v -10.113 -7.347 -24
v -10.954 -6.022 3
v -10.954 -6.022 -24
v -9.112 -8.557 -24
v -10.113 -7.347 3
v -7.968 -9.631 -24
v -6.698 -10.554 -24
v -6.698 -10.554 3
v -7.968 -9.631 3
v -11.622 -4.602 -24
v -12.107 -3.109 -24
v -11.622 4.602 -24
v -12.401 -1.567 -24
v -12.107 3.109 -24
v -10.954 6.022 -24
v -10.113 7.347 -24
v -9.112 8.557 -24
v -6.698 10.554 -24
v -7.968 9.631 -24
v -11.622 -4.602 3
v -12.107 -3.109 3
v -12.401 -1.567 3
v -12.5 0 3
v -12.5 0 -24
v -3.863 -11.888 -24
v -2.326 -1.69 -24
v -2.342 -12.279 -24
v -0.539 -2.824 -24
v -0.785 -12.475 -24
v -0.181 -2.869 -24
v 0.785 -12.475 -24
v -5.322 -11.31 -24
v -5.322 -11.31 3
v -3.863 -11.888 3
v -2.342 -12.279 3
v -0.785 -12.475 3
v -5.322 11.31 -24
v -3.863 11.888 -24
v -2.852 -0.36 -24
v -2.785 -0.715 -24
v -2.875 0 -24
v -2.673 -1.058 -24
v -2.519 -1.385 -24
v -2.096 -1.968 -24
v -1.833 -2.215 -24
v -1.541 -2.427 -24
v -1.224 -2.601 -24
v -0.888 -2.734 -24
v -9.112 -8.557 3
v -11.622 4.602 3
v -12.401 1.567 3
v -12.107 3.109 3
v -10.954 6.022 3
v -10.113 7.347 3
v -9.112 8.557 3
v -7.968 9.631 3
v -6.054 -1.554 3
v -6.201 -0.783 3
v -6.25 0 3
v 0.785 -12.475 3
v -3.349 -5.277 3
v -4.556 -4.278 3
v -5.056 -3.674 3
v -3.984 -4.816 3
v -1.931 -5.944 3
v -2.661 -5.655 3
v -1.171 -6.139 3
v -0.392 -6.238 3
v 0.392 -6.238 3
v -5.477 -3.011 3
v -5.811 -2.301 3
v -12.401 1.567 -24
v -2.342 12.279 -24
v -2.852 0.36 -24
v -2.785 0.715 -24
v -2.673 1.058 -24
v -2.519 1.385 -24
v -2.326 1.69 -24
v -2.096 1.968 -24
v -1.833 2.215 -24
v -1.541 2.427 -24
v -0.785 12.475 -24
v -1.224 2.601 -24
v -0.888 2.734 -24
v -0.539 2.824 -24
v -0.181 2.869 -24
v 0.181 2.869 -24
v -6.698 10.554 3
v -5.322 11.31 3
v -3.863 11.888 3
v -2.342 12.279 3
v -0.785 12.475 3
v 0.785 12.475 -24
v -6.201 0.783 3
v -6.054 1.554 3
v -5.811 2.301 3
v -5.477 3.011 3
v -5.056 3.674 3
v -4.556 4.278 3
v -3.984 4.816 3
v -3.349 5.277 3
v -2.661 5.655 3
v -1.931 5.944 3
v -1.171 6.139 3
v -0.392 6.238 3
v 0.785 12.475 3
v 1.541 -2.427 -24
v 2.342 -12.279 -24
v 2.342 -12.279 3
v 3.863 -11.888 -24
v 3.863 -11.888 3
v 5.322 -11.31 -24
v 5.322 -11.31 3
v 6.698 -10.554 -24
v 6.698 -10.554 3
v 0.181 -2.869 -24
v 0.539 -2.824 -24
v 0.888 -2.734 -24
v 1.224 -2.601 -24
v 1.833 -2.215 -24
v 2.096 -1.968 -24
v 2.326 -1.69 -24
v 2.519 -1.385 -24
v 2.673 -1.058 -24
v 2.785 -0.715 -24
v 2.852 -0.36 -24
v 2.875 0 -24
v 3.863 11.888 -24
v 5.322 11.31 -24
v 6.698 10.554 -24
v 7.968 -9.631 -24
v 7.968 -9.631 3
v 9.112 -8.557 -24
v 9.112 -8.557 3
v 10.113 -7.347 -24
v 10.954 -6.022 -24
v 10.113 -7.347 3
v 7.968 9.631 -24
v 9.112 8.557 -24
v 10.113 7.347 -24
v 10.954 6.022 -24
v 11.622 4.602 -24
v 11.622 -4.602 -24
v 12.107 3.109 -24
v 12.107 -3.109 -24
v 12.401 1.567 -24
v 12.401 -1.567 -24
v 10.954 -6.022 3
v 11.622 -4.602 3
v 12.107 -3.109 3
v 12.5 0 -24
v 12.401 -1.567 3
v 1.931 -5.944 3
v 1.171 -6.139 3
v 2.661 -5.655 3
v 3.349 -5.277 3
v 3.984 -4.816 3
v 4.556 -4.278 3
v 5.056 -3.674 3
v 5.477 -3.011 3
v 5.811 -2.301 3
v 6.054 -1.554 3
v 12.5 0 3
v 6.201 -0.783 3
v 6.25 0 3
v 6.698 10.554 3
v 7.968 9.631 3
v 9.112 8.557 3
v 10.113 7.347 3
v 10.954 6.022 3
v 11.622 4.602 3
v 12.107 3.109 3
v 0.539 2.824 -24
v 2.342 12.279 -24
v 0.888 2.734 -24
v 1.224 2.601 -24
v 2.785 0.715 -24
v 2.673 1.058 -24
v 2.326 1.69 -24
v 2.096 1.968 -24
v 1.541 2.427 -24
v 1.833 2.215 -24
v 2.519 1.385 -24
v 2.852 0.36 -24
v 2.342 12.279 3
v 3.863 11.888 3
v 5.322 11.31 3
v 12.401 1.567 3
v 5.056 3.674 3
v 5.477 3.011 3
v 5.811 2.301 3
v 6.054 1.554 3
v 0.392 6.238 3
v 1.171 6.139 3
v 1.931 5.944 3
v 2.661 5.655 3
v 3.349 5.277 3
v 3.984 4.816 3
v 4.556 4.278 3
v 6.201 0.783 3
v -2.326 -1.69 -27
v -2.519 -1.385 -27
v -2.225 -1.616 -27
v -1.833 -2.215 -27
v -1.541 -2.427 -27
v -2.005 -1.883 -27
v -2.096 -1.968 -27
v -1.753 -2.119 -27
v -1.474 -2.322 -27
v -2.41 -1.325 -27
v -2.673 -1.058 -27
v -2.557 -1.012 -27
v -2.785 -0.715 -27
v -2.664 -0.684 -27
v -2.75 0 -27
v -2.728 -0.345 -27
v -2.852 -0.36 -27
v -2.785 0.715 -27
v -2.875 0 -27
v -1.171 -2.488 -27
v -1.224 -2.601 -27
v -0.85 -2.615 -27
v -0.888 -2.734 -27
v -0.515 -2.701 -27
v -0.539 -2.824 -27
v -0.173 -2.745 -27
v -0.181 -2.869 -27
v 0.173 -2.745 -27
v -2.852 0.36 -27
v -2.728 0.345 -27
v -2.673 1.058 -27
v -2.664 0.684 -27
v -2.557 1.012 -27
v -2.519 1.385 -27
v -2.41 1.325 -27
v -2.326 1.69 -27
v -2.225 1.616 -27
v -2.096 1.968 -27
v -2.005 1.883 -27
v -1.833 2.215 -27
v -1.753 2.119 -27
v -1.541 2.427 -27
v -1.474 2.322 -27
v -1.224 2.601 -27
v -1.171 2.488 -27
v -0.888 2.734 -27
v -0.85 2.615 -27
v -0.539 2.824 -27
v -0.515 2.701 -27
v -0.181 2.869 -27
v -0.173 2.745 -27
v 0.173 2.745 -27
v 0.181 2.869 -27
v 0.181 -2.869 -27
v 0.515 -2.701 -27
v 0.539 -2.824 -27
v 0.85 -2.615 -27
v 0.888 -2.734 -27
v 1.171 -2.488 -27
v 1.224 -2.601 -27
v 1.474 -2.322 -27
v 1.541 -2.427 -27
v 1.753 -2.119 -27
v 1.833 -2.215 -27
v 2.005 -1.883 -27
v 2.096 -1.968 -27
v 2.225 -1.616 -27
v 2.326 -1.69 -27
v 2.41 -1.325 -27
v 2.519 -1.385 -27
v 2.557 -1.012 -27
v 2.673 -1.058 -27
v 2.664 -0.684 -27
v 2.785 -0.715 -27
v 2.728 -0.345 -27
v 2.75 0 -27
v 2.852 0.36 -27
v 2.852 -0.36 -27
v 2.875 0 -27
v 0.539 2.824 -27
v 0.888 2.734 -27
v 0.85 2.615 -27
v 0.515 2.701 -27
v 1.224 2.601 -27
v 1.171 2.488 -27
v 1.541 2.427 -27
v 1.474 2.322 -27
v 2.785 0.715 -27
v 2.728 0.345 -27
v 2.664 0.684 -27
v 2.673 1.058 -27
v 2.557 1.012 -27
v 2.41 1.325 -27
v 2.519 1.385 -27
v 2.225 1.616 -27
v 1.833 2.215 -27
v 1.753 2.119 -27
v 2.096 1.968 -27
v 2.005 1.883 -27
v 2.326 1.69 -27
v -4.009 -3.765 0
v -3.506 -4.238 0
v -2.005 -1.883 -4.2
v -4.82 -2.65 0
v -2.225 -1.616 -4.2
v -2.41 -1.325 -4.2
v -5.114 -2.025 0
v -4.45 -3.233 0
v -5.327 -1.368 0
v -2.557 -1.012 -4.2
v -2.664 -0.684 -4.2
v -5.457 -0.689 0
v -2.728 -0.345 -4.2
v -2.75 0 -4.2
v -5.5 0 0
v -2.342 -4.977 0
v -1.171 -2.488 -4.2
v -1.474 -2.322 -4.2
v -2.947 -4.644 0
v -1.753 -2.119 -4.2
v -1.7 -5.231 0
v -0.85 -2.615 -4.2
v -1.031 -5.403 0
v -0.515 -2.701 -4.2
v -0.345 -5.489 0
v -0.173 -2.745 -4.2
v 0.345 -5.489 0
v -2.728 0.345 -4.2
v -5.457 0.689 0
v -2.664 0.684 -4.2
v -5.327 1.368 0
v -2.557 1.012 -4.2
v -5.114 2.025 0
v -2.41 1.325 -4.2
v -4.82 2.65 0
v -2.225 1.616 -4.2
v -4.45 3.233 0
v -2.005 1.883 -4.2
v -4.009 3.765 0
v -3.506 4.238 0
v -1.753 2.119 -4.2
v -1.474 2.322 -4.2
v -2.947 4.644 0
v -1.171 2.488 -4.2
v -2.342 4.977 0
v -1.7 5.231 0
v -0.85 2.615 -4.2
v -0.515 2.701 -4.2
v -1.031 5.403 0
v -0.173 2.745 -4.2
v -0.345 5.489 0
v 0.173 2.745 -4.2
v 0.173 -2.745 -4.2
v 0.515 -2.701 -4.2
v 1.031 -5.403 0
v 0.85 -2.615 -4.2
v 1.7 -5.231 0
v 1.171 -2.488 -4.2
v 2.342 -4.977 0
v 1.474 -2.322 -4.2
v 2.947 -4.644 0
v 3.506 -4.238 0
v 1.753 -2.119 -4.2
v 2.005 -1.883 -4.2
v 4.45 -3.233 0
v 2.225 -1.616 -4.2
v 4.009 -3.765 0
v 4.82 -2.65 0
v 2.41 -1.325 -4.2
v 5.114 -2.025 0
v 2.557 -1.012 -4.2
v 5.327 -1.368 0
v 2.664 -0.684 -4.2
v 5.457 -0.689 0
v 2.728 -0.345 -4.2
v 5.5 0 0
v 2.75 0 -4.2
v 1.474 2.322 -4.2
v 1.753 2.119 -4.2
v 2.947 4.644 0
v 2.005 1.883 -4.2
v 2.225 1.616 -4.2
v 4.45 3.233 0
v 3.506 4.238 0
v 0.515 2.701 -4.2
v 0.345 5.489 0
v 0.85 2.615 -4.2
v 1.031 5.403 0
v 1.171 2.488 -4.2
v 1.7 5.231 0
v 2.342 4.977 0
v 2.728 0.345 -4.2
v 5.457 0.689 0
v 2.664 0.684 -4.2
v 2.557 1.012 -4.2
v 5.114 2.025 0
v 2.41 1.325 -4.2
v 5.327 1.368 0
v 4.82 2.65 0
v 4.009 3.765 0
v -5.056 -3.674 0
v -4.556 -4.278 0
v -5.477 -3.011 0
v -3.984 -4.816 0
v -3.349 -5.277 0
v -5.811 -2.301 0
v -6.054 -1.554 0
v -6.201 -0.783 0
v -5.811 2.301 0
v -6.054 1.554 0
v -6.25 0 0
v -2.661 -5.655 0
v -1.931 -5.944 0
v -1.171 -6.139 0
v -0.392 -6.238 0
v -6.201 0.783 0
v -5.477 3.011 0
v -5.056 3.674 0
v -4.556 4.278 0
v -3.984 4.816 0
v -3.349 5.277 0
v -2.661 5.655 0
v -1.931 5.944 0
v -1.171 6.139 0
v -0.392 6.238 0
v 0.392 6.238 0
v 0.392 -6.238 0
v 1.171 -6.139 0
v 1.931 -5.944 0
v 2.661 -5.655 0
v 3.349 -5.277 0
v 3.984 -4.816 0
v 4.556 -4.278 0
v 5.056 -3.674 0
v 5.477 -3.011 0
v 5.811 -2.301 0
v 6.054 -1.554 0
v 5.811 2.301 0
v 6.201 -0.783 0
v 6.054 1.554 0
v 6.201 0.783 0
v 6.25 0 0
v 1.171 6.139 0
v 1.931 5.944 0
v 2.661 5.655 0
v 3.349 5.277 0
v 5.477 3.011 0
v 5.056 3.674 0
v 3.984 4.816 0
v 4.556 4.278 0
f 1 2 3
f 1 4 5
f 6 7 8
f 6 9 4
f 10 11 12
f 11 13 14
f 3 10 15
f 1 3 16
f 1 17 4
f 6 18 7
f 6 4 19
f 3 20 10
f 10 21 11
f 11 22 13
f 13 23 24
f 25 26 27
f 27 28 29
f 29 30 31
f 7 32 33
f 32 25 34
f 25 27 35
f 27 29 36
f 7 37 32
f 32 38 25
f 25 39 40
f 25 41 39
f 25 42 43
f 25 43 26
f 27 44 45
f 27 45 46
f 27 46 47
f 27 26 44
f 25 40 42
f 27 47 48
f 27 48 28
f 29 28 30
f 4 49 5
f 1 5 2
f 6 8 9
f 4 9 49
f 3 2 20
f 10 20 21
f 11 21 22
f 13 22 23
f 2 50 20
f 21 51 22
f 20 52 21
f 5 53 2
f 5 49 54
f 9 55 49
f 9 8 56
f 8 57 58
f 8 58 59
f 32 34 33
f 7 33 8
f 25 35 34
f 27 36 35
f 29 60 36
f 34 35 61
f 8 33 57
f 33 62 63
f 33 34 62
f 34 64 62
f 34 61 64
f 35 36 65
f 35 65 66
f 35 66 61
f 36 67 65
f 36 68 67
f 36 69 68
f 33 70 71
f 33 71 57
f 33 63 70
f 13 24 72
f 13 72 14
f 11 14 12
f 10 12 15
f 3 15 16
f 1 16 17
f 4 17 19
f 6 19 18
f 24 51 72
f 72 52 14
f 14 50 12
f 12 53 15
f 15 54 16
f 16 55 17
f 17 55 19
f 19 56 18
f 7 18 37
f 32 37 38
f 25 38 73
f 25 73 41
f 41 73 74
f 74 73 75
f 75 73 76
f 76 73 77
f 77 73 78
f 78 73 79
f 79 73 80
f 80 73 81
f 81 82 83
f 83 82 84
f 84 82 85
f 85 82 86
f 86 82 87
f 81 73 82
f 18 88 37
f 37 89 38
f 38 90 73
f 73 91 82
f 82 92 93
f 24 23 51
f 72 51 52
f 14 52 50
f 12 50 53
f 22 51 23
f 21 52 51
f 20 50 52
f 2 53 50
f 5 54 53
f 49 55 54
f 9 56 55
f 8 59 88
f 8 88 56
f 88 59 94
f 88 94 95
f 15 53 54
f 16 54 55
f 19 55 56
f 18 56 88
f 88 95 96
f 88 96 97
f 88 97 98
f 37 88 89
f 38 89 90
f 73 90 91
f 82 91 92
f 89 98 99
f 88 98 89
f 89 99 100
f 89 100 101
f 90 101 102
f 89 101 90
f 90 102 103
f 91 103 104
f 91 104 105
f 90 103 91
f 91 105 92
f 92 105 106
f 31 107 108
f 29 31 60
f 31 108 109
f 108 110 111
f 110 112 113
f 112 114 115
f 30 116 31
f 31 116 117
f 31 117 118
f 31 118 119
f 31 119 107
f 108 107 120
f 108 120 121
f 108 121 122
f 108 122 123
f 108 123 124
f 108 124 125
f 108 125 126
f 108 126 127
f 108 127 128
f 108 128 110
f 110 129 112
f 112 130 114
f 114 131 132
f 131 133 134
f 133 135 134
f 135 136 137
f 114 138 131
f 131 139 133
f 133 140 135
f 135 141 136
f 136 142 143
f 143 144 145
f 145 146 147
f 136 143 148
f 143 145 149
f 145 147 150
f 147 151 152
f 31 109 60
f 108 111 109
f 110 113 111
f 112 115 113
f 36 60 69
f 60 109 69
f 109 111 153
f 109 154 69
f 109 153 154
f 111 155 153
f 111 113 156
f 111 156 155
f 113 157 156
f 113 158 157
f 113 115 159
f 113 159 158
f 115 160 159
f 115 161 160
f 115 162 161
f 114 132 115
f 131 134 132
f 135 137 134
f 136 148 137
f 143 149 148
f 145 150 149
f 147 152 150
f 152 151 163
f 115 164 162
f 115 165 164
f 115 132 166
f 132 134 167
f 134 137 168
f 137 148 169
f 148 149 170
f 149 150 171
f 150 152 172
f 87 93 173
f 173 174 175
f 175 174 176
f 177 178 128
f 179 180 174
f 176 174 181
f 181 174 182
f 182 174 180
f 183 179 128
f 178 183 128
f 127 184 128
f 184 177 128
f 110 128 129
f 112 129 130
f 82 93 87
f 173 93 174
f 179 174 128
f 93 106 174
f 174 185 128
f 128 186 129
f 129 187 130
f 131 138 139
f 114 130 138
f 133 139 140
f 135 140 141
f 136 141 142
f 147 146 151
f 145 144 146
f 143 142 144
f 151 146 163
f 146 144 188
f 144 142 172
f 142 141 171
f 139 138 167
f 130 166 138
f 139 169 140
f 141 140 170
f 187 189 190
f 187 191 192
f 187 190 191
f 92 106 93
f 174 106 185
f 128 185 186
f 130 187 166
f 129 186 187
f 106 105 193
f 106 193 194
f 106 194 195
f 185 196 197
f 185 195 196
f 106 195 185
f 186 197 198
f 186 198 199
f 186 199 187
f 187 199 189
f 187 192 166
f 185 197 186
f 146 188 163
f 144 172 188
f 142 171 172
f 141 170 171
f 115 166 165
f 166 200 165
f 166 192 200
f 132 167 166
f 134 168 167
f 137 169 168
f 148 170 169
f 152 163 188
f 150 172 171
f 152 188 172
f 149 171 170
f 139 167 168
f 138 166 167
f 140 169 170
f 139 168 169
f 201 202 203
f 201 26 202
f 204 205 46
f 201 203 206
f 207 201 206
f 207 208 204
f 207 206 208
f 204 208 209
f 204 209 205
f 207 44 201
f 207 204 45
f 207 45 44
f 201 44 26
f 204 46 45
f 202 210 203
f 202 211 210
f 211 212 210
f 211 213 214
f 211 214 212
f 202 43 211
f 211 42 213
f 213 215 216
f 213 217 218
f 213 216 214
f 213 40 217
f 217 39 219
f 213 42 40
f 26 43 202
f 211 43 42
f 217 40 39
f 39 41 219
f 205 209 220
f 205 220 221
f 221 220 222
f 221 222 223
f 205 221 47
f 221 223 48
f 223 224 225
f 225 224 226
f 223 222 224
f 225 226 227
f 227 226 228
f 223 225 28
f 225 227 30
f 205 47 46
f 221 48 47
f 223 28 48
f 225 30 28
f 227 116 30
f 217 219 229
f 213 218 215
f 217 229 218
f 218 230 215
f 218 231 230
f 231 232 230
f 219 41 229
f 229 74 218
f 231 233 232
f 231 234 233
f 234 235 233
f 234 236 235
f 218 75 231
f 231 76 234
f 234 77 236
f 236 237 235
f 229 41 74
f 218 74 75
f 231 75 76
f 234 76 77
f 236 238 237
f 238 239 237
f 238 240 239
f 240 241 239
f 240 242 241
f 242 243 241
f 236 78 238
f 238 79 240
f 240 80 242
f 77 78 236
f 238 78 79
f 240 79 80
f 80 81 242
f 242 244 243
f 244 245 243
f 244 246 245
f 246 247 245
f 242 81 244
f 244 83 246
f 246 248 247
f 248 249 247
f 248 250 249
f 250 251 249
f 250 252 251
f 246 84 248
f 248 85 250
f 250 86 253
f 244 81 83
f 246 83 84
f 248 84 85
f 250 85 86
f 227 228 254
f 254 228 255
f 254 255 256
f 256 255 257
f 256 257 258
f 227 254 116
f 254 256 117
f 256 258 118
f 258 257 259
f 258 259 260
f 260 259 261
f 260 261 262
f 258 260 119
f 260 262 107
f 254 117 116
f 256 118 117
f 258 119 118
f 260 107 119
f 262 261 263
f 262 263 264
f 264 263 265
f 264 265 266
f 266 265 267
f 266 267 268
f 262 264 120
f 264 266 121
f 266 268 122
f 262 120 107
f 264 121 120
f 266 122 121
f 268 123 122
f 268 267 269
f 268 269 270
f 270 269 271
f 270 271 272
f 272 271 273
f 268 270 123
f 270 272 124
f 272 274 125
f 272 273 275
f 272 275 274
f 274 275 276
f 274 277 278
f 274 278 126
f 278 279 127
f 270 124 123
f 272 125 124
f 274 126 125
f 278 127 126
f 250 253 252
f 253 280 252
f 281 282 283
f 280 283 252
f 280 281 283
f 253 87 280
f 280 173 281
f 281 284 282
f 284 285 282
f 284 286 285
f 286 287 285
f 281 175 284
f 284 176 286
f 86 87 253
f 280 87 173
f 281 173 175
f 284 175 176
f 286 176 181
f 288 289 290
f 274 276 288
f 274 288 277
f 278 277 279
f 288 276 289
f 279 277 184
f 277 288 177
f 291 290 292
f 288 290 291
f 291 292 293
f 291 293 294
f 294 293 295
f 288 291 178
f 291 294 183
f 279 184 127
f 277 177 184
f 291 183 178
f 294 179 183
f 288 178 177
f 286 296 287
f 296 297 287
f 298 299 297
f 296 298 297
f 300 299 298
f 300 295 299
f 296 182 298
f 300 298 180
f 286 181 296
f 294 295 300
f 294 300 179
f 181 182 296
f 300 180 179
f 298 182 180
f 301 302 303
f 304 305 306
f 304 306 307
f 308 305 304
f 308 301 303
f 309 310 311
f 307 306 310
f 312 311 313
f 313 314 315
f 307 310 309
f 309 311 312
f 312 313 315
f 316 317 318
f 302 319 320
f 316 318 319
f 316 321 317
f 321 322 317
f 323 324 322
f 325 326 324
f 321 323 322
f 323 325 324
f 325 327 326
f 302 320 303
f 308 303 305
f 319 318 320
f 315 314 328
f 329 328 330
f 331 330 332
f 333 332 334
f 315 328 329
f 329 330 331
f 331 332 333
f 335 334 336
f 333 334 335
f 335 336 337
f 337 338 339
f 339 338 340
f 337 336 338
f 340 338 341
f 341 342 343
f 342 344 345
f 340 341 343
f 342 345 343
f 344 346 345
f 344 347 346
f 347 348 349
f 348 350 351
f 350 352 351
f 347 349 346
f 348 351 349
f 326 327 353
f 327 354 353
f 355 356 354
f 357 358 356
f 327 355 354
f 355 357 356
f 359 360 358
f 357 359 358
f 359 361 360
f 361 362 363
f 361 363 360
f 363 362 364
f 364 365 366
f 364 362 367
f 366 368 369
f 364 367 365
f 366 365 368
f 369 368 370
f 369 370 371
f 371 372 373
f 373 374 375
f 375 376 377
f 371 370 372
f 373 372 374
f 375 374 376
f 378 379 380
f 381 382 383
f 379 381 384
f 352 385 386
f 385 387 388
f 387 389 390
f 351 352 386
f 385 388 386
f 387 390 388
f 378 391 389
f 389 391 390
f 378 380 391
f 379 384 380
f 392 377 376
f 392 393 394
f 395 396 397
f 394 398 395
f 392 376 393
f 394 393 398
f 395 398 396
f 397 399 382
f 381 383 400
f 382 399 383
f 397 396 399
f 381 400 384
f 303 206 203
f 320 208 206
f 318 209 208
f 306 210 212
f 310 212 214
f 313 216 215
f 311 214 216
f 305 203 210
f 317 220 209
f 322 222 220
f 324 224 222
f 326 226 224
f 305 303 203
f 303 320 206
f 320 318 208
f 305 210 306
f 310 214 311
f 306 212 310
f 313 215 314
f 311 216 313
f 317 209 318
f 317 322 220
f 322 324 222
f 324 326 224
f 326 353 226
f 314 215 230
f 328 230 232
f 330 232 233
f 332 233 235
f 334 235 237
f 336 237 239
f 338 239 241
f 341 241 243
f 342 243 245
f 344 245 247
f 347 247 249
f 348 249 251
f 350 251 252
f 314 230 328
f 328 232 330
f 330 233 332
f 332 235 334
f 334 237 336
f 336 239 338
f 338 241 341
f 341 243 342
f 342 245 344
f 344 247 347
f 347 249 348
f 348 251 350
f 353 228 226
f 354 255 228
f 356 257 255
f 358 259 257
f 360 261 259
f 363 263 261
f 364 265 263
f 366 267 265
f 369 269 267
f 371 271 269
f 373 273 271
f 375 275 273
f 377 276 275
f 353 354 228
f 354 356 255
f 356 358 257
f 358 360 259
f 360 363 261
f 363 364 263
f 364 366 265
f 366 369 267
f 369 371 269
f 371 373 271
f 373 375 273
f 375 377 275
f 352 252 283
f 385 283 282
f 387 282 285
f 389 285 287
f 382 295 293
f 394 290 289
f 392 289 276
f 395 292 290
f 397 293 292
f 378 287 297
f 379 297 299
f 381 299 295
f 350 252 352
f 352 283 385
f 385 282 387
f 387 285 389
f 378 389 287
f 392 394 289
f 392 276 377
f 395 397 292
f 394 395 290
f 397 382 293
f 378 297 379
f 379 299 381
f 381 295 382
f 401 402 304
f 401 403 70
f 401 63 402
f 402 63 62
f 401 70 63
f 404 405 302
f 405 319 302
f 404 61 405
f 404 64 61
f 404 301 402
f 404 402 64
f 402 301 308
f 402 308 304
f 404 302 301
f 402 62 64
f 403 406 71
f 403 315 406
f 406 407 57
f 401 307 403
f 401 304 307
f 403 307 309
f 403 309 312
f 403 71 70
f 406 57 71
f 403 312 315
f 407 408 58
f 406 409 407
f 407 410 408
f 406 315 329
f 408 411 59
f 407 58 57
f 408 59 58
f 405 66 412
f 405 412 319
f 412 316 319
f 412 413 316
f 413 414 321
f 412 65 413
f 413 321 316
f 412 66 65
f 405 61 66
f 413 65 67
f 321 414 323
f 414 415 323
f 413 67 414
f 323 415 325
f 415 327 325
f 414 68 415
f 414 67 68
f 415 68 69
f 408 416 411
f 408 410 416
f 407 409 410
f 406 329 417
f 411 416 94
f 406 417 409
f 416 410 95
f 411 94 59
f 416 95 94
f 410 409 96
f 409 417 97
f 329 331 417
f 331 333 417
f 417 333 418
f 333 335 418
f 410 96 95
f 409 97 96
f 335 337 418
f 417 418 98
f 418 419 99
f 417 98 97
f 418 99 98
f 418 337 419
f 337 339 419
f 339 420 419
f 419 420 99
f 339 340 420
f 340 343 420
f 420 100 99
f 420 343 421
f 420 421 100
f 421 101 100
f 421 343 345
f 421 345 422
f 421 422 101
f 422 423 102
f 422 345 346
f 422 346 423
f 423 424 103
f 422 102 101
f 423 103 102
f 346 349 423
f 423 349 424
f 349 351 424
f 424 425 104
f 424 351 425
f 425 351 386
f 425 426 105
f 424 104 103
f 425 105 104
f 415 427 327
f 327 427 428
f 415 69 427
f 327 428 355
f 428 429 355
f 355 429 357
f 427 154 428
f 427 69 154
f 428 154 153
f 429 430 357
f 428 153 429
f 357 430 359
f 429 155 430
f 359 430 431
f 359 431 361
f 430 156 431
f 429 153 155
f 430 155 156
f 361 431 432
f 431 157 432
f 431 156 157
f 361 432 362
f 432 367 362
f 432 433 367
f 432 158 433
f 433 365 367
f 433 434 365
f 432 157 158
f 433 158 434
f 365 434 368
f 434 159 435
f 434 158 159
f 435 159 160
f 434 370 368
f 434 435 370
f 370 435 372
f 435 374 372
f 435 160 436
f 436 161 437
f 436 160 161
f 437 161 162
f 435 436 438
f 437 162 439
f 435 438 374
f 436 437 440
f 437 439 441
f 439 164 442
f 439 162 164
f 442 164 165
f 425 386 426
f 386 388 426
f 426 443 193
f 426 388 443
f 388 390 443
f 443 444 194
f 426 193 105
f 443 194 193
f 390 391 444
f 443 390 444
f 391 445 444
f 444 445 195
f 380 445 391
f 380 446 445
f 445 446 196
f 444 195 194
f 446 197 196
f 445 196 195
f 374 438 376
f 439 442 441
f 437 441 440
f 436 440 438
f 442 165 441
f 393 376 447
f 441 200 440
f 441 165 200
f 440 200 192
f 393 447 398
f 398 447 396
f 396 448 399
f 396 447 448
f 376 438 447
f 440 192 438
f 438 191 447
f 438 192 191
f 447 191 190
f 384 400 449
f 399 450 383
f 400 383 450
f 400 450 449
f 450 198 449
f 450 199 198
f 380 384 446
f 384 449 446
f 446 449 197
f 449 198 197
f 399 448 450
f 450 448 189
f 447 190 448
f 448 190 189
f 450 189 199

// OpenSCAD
$fn = 50;

difference() {
	union() {
		translate(v = [0, 0, -24.0]) {
			cylinder(h = 27, r = 12.5);
		}
		#translate(v = [0, 0, -27.0]) {
			cylinder(h = 27, r = 2.875);
		}
	}
	union() {
		translate(v = [0, 0, 0]) {
			rotate(a = [0, 0, 0]) {
				difference() {
					union() {
						translate(v = [0, 0, -27.0]) {
							cylinder(h = 27, r = 2.25);
						}
						translate(v = [0, 0, -4.2]) {
							cylinder(h = 4.2, r1 = 2.75, r2 = 5.5);
						}
						translate(v = [0, 0, -27.0]) {
							cylinder(h = 27, r = 2.75);
						}
						translate(v = [0, 0, -27.0]) {
							cylinder(h = 27, r = 2.25);
						}
					}
					union();
				}
			}
		}
		#cylinder(h = 3, r = 6.25);
	}
}
